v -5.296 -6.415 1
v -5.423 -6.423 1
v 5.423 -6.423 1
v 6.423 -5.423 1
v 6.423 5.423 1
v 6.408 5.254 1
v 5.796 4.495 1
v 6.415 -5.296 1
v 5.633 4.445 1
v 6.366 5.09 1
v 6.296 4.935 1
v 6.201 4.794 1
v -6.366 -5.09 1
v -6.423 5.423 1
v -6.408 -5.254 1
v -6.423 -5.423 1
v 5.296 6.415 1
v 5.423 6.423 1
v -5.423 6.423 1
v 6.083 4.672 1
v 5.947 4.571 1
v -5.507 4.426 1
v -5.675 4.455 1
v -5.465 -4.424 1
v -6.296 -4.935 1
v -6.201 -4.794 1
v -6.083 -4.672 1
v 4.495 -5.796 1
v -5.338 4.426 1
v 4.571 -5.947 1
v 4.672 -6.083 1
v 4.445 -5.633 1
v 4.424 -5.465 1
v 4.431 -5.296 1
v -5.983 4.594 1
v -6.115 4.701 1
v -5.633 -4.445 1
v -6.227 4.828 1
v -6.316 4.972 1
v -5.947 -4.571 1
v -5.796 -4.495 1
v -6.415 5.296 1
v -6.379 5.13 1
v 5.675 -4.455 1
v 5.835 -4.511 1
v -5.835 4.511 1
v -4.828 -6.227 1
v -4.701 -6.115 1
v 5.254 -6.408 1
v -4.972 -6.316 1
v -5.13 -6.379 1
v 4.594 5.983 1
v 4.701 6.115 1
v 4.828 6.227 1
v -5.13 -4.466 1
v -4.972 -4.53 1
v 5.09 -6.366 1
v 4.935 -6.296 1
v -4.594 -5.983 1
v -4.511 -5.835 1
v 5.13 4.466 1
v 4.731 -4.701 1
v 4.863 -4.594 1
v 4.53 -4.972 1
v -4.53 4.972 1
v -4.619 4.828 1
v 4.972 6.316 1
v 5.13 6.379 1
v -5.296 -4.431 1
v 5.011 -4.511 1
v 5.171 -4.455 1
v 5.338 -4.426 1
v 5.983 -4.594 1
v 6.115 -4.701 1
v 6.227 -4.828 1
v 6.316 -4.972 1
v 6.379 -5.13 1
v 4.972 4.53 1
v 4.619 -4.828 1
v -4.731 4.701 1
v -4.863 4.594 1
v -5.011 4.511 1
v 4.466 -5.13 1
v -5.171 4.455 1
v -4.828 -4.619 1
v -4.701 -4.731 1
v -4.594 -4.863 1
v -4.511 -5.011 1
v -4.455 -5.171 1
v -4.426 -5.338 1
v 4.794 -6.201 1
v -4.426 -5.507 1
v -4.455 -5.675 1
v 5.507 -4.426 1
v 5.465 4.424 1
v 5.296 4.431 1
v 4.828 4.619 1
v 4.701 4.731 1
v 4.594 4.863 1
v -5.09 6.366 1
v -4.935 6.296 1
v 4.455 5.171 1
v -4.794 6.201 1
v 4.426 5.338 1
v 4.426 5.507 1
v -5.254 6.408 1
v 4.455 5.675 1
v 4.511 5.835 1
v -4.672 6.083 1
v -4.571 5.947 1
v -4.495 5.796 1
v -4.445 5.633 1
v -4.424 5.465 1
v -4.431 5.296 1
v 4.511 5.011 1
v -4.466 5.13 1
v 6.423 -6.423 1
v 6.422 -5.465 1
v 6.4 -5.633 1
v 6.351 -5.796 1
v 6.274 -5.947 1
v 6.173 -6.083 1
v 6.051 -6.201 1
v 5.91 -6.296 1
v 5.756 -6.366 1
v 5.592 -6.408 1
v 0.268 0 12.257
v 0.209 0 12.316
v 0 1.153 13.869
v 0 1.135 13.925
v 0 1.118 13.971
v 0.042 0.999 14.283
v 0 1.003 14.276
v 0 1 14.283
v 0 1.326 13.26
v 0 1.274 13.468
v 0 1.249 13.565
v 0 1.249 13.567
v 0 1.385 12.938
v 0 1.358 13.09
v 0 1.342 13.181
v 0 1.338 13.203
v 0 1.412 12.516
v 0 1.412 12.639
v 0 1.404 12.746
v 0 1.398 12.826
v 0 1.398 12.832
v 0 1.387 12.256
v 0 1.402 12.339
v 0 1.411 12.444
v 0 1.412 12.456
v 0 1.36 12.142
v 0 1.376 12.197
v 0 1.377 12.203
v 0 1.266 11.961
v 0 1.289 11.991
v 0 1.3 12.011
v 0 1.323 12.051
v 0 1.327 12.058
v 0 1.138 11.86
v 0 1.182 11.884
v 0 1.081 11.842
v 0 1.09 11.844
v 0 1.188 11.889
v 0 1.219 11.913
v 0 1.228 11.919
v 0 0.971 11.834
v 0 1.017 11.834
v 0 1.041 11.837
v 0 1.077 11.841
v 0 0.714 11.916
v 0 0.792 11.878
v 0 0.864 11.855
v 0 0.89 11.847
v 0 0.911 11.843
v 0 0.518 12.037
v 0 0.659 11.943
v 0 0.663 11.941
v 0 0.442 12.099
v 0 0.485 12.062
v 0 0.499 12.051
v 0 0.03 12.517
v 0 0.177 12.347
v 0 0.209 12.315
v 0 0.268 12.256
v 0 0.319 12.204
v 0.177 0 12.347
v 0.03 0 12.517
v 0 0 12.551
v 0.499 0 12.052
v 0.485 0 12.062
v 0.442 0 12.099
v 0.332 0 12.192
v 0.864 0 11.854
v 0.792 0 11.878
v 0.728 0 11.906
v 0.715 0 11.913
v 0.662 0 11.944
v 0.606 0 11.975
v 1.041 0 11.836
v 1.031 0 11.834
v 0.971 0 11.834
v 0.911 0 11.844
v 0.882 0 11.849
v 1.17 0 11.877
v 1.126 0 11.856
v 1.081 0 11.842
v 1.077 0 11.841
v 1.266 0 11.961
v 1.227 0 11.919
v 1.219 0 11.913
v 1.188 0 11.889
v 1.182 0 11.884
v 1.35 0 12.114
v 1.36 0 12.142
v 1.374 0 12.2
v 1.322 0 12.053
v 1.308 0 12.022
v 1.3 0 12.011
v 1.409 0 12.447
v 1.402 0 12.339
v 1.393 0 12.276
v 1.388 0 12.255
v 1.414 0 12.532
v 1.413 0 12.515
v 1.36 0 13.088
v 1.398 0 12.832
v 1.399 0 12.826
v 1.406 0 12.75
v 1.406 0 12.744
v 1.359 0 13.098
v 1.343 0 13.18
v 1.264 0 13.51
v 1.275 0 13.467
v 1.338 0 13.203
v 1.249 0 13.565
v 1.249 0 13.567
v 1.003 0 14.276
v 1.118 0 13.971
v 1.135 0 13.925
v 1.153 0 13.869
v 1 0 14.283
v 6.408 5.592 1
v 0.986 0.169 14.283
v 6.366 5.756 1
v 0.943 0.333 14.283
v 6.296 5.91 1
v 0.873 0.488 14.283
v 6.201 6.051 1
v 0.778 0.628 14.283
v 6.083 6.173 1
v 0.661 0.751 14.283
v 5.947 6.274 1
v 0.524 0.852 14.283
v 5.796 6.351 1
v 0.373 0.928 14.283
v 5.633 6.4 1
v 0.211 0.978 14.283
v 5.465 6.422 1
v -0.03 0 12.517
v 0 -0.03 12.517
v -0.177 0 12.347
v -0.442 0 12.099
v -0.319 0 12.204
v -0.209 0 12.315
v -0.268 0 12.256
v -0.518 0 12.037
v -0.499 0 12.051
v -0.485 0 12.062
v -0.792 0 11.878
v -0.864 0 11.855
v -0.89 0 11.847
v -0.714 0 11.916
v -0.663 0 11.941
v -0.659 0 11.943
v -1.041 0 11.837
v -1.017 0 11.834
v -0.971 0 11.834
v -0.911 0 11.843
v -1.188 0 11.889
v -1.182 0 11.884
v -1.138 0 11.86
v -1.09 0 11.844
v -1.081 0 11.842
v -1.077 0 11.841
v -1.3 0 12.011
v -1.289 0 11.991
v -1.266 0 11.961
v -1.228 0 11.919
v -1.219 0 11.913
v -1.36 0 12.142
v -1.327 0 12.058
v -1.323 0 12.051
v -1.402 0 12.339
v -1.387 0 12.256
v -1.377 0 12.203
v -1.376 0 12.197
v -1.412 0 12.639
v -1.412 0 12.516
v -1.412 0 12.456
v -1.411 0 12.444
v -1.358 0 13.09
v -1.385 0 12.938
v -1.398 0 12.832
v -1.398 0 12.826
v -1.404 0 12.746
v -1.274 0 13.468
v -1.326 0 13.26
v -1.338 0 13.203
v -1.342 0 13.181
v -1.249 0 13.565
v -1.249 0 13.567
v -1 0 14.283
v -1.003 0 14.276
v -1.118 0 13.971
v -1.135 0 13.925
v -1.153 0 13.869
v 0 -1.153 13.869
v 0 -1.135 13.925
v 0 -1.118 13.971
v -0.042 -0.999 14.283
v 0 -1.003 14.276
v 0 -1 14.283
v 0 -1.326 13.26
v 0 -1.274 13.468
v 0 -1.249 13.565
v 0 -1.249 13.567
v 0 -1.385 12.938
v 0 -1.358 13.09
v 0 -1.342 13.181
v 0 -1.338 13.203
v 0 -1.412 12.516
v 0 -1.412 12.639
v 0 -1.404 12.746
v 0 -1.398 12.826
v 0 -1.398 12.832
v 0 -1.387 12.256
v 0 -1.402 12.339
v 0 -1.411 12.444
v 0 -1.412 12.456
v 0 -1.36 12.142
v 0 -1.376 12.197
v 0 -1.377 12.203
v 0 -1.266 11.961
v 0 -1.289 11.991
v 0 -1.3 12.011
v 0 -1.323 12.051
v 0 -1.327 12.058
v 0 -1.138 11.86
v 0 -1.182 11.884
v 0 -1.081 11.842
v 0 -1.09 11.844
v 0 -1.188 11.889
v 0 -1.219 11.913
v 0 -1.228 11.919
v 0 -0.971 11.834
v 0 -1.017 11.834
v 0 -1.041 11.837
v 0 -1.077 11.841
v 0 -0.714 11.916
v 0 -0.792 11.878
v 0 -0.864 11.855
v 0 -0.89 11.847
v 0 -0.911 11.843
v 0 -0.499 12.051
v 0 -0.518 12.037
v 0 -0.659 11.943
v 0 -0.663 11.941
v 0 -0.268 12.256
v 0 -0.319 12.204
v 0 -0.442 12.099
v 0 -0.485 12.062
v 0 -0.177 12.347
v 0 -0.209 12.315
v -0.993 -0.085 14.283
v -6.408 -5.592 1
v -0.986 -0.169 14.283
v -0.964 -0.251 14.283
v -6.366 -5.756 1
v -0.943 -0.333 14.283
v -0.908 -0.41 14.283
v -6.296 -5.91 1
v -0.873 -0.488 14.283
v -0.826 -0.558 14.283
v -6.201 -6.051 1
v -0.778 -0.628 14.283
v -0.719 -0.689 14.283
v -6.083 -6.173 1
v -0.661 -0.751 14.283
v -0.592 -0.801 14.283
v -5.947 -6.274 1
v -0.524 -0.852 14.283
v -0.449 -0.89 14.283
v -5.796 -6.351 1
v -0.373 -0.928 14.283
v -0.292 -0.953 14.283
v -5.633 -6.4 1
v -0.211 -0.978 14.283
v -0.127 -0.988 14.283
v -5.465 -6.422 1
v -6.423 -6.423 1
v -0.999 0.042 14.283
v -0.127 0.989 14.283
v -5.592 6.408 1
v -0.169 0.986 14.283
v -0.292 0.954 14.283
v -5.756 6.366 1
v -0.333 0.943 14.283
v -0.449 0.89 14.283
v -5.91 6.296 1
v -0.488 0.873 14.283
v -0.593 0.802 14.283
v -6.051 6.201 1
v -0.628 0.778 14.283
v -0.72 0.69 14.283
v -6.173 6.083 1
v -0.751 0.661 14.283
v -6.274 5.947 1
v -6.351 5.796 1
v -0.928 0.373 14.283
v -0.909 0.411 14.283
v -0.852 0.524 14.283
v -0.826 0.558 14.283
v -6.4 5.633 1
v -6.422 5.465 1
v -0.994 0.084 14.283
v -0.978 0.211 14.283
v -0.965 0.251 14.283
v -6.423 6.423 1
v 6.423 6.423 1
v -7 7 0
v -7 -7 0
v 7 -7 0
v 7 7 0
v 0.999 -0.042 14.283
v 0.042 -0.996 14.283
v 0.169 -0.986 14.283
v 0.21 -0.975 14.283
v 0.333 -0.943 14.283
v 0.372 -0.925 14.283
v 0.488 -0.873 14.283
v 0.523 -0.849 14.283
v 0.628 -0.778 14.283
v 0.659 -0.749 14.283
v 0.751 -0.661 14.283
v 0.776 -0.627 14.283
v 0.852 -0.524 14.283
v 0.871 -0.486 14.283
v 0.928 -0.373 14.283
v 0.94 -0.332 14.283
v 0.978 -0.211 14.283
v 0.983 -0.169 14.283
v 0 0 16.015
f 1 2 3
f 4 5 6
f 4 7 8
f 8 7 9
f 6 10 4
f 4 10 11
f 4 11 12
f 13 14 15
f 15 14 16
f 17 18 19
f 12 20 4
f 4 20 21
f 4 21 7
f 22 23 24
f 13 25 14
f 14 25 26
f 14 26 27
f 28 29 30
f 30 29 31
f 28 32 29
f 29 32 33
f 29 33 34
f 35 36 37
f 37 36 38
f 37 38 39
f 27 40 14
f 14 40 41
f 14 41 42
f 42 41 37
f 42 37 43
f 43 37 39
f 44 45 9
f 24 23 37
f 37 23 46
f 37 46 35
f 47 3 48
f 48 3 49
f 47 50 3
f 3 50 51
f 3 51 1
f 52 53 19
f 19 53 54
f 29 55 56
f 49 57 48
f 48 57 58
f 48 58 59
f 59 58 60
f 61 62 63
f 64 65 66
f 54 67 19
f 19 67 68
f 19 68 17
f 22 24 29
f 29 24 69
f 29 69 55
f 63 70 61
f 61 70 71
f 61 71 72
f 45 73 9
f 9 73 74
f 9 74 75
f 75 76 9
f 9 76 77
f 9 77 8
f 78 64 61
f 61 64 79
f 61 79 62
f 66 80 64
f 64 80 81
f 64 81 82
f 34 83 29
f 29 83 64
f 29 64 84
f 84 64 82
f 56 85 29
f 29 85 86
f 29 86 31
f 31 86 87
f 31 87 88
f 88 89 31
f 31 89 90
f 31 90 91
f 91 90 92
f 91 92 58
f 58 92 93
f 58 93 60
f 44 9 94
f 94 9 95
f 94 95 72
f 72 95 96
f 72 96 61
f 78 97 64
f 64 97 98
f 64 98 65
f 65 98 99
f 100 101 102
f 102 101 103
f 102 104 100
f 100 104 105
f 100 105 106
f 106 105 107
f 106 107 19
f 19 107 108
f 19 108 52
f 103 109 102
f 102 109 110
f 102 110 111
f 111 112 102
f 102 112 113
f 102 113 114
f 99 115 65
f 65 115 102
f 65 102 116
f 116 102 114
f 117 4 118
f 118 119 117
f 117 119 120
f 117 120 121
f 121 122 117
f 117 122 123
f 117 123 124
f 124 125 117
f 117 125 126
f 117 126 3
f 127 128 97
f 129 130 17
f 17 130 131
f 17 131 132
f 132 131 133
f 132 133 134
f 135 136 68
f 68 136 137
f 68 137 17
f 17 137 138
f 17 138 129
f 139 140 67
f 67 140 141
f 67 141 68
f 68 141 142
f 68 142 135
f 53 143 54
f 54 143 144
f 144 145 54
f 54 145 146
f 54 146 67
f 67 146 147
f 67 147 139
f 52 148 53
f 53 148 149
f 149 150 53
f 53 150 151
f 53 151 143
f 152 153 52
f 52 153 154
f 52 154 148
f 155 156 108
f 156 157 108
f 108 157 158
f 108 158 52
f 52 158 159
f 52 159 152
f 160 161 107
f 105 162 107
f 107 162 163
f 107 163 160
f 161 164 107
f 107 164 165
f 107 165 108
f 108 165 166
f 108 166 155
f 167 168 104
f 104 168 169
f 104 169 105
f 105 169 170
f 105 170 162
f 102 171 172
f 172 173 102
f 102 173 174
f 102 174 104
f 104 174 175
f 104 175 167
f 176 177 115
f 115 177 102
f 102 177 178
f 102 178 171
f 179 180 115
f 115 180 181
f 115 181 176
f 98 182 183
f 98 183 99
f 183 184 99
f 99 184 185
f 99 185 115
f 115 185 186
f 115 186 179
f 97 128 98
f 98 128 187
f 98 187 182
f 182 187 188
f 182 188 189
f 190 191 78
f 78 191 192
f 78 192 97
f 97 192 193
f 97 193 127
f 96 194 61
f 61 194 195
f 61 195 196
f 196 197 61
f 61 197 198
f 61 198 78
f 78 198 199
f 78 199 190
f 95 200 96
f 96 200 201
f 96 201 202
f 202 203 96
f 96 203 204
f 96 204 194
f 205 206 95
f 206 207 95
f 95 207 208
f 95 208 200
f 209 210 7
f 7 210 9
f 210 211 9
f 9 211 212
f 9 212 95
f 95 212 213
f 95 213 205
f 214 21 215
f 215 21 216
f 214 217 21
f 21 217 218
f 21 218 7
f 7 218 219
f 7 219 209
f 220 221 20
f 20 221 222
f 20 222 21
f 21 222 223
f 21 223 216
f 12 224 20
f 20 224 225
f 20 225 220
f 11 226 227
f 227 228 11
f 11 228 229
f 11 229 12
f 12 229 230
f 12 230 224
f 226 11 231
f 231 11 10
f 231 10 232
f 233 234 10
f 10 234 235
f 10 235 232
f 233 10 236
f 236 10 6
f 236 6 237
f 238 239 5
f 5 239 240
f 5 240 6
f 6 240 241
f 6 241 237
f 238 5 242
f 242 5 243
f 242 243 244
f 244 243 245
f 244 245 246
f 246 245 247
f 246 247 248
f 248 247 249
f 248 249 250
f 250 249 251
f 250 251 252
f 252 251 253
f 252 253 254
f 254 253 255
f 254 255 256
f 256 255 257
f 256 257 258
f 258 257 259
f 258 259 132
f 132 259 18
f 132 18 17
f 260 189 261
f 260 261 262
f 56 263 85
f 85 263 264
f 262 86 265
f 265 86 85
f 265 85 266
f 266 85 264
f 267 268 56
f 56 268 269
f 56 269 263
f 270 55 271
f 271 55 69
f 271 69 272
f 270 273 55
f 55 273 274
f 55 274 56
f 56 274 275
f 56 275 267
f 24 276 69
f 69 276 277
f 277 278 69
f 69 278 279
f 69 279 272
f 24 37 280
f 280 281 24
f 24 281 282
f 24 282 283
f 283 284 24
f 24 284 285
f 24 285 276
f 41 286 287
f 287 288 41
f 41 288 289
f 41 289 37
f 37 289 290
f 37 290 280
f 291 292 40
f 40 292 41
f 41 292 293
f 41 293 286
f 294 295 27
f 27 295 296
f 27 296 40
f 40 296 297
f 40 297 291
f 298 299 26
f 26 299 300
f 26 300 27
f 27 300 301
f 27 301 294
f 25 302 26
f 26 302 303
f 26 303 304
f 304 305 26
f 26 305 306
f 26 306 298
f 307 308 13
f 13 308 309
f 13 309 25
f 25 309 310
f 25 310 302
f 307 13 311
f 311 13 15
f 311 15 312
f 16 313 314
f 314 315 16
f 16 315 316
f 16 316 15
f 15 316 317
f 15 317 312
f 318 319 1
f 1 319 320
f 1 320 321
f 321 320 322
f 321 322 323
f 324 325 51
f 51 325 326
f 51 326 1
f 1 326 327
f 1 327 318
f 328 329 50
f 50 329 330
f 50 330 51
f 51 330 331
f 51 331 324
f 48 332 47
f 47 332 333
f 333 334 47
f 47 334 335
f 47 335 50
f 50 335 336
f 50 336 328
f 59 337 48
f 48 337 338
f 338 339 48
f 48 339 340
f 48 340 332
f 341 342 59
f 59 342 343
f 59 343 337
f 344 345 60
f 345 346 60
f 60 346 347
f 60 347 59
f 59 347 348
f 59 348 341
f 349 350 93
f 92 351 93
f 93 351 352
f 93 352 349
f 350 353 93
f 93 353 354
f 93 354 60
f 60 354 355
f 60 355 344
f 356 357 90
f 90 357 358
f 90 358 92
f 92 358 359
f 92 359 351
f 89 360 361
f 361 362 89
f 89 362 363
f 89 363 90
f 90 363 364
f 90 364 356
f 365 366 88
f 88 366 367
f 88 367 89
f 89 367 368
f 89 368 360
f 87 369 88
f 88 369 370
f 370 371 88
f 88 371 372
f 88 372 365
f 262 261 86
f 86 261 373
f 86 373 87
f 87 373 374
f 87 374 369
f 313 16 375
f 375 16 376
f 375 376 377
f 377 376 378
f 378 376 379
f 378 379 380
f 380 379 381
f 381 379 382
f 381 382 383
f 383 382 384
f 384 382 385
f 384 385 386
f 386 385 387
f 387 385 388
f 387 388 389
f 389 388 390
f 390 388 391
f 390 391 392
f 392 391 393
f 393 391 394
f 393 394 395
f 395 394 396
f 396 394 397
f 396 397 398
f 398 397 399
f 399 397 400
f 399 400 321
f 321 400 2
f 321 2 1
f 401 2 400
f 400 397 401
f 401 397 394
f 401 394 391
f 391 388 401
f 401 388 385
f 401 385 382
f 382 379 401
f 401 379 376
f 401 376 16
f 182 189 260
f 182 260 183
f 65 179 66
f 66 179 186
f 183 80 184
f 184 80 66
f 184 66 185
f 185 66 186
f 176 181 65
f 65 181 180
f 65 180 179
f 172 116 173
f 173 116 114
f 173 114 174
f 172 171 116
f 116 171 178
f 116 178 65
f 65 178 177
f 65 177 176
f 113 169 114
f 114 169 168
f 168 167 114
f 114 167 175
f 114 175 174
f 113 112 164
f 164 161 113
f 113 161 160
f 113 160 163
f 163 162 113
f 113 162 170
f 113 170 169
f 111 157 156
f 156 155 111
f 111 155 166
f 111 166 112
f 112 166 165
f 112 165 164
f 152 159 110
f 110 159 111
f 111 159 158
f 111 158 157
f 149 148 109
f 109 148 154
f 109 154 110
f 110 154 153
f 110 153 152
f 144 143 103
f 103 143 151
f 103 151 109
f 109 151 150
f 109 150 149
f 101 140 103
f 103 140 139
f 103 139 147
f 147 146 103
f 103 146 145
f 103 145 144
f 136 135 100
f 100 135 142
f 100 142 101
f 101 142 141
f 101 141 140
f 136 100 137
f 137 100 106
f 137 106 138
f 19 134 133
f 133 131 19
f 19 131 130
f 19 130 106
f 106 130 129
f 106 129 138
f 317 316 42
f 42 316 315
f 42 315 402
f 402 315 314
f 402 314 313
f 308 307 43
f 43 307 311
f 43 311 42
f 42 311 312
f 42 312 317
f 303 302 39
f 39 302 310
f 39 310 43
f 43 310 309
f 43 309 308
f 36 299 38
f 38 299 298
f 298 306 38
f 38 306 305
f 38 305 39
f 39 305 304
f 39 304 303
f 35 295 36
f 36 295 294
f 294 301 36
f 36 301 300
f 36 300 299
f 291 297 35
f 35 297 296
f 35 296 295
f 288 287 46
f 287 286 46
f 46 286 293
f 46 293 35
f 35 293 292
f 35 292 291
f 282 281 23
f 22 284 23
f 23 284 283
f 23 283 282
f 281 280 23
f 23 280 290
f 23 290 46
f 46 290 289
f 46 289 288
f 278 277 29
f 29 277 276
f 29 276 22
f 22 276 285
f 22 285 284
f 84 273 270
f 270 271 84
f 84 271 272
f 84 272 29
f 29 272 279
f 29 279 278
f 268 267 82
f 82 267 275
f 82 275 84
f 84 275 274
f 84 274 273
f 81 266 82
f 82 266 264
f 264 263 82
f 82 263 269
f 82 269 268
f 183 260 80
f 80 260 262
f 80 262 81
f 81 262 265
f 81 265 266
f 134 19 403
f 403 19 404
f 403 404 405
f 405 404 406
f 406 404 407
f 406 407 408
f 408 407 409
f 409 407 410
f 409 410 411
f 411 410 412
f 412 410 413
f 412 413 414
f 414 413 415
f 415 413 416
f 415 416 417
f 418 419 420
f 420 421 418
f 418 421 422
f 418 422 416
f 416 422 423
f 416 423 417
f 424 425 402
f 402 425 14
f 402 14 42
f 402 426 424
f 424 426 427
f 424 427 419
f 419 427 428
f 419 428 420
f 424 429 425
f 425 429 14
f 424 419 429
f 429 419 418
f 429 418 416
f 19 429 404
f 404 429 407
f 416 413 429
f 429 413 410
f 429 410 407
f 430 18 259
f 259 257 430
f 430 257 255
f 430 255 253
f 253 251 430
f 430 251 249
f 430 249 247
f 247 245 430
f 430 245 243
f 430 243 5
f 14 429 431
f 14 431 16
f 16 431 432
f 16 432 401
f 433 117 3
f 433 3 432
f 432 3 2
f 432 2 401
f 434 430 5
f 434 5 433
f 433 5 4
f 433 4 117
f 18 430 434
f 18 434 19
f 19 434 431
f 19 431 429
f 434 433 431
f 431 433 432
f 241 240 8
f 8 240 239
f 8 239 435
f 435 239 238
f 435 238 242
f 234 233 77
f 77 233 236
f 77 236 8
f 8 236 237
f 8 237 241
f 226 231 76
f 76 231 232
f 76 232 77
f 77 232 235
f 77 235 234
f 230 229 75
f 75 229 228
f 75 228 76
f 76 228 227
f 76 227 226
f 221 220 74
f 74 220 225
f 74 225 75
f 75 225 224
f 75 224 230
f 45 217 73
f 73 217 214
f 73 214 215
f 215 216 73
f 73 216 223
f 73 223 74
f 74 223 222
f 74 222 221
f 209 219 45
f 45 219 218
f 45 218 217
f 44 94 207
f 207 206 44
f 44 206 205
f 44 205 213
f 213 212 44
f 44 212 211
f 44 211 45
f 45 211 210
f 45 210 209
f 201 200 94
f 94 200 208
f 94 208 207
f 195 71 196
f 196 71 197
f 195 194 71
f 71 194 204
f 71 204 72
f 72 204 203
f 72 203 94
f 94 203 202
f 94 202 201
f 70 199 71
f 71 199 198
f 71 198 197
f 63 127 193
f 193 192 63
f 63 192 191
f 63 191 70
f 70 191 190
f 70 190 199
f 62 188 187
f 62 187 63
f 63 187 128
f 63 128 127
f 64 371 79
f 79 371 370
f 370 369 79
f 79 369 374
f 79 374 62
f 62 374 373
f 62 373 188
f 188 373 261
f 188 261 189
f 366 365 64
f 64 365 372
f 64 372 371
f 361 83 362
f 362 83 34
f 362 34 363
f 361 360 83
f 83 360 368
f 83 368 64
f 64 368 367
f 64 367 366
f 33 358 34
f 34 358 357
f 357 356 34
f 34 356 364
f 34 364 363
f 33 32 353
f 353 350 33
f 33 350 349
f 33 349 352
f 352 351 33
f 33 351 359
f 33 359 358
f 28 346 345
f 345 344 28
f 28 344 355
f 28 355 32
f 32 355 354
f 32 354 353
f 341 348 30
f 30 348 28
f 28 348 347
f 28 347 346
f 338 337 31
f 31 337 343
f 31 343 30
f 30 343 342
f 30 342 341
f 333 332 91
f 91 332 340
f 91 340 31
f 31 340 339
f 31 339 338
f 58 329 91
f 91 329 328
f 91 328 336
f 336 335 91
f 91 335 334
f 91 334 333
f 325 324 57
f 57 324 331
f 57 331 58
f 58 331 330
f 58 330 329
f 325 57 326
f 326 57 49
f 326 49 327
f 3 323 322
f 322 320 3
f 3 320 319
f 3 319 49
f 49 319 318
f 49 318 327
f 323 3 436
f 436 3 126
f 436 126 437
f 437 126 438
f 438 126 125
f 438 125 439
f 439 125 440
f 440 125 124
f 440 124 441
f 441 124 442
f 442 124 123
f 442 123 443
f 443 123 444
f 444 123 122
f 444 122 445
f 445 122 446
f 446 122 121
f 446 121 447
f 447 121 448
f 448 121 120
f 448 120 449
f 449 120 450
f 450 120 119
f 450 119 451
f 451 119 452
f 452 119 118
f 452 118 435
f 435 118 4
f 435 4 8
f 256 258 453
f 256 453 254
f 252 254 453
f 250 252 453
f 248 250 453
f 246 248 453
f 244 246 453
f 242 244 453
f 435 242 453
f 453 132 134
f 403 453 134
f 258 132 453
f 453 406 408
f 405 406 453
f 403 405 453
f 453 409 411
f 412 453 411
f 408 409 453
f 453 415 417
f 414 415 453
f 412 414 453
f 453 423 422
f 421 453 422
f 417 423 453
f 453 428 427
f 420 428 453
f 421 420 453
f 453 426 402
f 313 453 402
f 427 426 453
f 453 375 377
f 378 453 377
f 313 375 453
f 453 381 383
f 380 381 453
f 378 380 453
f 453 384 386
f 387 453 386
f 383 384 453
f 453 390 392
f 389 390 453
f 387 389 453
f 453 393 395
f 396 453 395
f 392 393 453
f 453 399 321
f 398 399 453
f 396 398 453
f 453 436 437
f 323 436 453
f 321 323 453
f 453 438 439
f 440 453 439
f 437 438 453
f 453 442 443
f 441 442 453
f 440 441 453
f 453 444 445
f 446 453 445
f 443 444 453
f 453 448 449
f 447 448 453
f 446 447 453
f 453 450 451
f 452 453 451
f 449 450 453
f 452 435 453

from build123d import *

# Parameters (mm, degrees)
SKETCH1_W           = 14
SKETCH1_H           = 14
BOSS_EXTRUDE1_DEPTH = 1
BOSS_EXTRUDE1_TAPER = 30
SKETCH2_R           = 1
CIRPATTERN1_COUNT   = 4
SKETCH4_R           = 1
BOSS_EXTRUDE2_DEPTH = 10
BOSS_EXTRUDE2_TAPER = 30


with BuildPart() as part:
    # Sketch1 → Boss-Extrude1 (new body)
    with BuildSketch(Plane.XY):
        Rectangle(SKETCH1_W, SKETCH1_H)
    extrude(amount=BOSS_EXTRUDE1_DEPTH, taper=BOSS_EXTRUDE1_TAPER)

    # Sweep1: sweep along a path in Sketch3
    with BuildLine(Plane(origin=(0, 0, 0), x_dir=(0, 0, -1), z_dir=(0.7071067811865476, -0.7071067811865475, 0))) as sweep1_path:
        Line((-1, 7.668784793), (-14.282724894, 0))
    # Sketch2 → Sweep1 (sweep)
    with BuildSketch(Plane.XY.offset(1)):
        with Locations((5.422649731, 5.422649731)):
            Circle(SKETCH2_R)
    sweep1 = sweep(path=sweep1_path.line)

    # CirPattern1: Sweep1 ×4 about axis
    cirpattern1_axis = Axis((0, 0, -4.23184126), (0, 0, 1))
    for i in range(1, CIRPATTERN1_COUNT):
        add(sweep1.rotate(cirpattern1_axis, i * 360 / CIRPATTERN1_COUNT))

    # Sketch4 → Boss-Extrude2 (add)
    with BuildSketch(Plane.XY.offset(14.282724894)):
        Circle(SKETCH4_R)
    extrude(amount=BOSS_EXTRUDE2_DEPTH, taper=BOSS_EXTRUDE2_TAPER)


solid = part.part
